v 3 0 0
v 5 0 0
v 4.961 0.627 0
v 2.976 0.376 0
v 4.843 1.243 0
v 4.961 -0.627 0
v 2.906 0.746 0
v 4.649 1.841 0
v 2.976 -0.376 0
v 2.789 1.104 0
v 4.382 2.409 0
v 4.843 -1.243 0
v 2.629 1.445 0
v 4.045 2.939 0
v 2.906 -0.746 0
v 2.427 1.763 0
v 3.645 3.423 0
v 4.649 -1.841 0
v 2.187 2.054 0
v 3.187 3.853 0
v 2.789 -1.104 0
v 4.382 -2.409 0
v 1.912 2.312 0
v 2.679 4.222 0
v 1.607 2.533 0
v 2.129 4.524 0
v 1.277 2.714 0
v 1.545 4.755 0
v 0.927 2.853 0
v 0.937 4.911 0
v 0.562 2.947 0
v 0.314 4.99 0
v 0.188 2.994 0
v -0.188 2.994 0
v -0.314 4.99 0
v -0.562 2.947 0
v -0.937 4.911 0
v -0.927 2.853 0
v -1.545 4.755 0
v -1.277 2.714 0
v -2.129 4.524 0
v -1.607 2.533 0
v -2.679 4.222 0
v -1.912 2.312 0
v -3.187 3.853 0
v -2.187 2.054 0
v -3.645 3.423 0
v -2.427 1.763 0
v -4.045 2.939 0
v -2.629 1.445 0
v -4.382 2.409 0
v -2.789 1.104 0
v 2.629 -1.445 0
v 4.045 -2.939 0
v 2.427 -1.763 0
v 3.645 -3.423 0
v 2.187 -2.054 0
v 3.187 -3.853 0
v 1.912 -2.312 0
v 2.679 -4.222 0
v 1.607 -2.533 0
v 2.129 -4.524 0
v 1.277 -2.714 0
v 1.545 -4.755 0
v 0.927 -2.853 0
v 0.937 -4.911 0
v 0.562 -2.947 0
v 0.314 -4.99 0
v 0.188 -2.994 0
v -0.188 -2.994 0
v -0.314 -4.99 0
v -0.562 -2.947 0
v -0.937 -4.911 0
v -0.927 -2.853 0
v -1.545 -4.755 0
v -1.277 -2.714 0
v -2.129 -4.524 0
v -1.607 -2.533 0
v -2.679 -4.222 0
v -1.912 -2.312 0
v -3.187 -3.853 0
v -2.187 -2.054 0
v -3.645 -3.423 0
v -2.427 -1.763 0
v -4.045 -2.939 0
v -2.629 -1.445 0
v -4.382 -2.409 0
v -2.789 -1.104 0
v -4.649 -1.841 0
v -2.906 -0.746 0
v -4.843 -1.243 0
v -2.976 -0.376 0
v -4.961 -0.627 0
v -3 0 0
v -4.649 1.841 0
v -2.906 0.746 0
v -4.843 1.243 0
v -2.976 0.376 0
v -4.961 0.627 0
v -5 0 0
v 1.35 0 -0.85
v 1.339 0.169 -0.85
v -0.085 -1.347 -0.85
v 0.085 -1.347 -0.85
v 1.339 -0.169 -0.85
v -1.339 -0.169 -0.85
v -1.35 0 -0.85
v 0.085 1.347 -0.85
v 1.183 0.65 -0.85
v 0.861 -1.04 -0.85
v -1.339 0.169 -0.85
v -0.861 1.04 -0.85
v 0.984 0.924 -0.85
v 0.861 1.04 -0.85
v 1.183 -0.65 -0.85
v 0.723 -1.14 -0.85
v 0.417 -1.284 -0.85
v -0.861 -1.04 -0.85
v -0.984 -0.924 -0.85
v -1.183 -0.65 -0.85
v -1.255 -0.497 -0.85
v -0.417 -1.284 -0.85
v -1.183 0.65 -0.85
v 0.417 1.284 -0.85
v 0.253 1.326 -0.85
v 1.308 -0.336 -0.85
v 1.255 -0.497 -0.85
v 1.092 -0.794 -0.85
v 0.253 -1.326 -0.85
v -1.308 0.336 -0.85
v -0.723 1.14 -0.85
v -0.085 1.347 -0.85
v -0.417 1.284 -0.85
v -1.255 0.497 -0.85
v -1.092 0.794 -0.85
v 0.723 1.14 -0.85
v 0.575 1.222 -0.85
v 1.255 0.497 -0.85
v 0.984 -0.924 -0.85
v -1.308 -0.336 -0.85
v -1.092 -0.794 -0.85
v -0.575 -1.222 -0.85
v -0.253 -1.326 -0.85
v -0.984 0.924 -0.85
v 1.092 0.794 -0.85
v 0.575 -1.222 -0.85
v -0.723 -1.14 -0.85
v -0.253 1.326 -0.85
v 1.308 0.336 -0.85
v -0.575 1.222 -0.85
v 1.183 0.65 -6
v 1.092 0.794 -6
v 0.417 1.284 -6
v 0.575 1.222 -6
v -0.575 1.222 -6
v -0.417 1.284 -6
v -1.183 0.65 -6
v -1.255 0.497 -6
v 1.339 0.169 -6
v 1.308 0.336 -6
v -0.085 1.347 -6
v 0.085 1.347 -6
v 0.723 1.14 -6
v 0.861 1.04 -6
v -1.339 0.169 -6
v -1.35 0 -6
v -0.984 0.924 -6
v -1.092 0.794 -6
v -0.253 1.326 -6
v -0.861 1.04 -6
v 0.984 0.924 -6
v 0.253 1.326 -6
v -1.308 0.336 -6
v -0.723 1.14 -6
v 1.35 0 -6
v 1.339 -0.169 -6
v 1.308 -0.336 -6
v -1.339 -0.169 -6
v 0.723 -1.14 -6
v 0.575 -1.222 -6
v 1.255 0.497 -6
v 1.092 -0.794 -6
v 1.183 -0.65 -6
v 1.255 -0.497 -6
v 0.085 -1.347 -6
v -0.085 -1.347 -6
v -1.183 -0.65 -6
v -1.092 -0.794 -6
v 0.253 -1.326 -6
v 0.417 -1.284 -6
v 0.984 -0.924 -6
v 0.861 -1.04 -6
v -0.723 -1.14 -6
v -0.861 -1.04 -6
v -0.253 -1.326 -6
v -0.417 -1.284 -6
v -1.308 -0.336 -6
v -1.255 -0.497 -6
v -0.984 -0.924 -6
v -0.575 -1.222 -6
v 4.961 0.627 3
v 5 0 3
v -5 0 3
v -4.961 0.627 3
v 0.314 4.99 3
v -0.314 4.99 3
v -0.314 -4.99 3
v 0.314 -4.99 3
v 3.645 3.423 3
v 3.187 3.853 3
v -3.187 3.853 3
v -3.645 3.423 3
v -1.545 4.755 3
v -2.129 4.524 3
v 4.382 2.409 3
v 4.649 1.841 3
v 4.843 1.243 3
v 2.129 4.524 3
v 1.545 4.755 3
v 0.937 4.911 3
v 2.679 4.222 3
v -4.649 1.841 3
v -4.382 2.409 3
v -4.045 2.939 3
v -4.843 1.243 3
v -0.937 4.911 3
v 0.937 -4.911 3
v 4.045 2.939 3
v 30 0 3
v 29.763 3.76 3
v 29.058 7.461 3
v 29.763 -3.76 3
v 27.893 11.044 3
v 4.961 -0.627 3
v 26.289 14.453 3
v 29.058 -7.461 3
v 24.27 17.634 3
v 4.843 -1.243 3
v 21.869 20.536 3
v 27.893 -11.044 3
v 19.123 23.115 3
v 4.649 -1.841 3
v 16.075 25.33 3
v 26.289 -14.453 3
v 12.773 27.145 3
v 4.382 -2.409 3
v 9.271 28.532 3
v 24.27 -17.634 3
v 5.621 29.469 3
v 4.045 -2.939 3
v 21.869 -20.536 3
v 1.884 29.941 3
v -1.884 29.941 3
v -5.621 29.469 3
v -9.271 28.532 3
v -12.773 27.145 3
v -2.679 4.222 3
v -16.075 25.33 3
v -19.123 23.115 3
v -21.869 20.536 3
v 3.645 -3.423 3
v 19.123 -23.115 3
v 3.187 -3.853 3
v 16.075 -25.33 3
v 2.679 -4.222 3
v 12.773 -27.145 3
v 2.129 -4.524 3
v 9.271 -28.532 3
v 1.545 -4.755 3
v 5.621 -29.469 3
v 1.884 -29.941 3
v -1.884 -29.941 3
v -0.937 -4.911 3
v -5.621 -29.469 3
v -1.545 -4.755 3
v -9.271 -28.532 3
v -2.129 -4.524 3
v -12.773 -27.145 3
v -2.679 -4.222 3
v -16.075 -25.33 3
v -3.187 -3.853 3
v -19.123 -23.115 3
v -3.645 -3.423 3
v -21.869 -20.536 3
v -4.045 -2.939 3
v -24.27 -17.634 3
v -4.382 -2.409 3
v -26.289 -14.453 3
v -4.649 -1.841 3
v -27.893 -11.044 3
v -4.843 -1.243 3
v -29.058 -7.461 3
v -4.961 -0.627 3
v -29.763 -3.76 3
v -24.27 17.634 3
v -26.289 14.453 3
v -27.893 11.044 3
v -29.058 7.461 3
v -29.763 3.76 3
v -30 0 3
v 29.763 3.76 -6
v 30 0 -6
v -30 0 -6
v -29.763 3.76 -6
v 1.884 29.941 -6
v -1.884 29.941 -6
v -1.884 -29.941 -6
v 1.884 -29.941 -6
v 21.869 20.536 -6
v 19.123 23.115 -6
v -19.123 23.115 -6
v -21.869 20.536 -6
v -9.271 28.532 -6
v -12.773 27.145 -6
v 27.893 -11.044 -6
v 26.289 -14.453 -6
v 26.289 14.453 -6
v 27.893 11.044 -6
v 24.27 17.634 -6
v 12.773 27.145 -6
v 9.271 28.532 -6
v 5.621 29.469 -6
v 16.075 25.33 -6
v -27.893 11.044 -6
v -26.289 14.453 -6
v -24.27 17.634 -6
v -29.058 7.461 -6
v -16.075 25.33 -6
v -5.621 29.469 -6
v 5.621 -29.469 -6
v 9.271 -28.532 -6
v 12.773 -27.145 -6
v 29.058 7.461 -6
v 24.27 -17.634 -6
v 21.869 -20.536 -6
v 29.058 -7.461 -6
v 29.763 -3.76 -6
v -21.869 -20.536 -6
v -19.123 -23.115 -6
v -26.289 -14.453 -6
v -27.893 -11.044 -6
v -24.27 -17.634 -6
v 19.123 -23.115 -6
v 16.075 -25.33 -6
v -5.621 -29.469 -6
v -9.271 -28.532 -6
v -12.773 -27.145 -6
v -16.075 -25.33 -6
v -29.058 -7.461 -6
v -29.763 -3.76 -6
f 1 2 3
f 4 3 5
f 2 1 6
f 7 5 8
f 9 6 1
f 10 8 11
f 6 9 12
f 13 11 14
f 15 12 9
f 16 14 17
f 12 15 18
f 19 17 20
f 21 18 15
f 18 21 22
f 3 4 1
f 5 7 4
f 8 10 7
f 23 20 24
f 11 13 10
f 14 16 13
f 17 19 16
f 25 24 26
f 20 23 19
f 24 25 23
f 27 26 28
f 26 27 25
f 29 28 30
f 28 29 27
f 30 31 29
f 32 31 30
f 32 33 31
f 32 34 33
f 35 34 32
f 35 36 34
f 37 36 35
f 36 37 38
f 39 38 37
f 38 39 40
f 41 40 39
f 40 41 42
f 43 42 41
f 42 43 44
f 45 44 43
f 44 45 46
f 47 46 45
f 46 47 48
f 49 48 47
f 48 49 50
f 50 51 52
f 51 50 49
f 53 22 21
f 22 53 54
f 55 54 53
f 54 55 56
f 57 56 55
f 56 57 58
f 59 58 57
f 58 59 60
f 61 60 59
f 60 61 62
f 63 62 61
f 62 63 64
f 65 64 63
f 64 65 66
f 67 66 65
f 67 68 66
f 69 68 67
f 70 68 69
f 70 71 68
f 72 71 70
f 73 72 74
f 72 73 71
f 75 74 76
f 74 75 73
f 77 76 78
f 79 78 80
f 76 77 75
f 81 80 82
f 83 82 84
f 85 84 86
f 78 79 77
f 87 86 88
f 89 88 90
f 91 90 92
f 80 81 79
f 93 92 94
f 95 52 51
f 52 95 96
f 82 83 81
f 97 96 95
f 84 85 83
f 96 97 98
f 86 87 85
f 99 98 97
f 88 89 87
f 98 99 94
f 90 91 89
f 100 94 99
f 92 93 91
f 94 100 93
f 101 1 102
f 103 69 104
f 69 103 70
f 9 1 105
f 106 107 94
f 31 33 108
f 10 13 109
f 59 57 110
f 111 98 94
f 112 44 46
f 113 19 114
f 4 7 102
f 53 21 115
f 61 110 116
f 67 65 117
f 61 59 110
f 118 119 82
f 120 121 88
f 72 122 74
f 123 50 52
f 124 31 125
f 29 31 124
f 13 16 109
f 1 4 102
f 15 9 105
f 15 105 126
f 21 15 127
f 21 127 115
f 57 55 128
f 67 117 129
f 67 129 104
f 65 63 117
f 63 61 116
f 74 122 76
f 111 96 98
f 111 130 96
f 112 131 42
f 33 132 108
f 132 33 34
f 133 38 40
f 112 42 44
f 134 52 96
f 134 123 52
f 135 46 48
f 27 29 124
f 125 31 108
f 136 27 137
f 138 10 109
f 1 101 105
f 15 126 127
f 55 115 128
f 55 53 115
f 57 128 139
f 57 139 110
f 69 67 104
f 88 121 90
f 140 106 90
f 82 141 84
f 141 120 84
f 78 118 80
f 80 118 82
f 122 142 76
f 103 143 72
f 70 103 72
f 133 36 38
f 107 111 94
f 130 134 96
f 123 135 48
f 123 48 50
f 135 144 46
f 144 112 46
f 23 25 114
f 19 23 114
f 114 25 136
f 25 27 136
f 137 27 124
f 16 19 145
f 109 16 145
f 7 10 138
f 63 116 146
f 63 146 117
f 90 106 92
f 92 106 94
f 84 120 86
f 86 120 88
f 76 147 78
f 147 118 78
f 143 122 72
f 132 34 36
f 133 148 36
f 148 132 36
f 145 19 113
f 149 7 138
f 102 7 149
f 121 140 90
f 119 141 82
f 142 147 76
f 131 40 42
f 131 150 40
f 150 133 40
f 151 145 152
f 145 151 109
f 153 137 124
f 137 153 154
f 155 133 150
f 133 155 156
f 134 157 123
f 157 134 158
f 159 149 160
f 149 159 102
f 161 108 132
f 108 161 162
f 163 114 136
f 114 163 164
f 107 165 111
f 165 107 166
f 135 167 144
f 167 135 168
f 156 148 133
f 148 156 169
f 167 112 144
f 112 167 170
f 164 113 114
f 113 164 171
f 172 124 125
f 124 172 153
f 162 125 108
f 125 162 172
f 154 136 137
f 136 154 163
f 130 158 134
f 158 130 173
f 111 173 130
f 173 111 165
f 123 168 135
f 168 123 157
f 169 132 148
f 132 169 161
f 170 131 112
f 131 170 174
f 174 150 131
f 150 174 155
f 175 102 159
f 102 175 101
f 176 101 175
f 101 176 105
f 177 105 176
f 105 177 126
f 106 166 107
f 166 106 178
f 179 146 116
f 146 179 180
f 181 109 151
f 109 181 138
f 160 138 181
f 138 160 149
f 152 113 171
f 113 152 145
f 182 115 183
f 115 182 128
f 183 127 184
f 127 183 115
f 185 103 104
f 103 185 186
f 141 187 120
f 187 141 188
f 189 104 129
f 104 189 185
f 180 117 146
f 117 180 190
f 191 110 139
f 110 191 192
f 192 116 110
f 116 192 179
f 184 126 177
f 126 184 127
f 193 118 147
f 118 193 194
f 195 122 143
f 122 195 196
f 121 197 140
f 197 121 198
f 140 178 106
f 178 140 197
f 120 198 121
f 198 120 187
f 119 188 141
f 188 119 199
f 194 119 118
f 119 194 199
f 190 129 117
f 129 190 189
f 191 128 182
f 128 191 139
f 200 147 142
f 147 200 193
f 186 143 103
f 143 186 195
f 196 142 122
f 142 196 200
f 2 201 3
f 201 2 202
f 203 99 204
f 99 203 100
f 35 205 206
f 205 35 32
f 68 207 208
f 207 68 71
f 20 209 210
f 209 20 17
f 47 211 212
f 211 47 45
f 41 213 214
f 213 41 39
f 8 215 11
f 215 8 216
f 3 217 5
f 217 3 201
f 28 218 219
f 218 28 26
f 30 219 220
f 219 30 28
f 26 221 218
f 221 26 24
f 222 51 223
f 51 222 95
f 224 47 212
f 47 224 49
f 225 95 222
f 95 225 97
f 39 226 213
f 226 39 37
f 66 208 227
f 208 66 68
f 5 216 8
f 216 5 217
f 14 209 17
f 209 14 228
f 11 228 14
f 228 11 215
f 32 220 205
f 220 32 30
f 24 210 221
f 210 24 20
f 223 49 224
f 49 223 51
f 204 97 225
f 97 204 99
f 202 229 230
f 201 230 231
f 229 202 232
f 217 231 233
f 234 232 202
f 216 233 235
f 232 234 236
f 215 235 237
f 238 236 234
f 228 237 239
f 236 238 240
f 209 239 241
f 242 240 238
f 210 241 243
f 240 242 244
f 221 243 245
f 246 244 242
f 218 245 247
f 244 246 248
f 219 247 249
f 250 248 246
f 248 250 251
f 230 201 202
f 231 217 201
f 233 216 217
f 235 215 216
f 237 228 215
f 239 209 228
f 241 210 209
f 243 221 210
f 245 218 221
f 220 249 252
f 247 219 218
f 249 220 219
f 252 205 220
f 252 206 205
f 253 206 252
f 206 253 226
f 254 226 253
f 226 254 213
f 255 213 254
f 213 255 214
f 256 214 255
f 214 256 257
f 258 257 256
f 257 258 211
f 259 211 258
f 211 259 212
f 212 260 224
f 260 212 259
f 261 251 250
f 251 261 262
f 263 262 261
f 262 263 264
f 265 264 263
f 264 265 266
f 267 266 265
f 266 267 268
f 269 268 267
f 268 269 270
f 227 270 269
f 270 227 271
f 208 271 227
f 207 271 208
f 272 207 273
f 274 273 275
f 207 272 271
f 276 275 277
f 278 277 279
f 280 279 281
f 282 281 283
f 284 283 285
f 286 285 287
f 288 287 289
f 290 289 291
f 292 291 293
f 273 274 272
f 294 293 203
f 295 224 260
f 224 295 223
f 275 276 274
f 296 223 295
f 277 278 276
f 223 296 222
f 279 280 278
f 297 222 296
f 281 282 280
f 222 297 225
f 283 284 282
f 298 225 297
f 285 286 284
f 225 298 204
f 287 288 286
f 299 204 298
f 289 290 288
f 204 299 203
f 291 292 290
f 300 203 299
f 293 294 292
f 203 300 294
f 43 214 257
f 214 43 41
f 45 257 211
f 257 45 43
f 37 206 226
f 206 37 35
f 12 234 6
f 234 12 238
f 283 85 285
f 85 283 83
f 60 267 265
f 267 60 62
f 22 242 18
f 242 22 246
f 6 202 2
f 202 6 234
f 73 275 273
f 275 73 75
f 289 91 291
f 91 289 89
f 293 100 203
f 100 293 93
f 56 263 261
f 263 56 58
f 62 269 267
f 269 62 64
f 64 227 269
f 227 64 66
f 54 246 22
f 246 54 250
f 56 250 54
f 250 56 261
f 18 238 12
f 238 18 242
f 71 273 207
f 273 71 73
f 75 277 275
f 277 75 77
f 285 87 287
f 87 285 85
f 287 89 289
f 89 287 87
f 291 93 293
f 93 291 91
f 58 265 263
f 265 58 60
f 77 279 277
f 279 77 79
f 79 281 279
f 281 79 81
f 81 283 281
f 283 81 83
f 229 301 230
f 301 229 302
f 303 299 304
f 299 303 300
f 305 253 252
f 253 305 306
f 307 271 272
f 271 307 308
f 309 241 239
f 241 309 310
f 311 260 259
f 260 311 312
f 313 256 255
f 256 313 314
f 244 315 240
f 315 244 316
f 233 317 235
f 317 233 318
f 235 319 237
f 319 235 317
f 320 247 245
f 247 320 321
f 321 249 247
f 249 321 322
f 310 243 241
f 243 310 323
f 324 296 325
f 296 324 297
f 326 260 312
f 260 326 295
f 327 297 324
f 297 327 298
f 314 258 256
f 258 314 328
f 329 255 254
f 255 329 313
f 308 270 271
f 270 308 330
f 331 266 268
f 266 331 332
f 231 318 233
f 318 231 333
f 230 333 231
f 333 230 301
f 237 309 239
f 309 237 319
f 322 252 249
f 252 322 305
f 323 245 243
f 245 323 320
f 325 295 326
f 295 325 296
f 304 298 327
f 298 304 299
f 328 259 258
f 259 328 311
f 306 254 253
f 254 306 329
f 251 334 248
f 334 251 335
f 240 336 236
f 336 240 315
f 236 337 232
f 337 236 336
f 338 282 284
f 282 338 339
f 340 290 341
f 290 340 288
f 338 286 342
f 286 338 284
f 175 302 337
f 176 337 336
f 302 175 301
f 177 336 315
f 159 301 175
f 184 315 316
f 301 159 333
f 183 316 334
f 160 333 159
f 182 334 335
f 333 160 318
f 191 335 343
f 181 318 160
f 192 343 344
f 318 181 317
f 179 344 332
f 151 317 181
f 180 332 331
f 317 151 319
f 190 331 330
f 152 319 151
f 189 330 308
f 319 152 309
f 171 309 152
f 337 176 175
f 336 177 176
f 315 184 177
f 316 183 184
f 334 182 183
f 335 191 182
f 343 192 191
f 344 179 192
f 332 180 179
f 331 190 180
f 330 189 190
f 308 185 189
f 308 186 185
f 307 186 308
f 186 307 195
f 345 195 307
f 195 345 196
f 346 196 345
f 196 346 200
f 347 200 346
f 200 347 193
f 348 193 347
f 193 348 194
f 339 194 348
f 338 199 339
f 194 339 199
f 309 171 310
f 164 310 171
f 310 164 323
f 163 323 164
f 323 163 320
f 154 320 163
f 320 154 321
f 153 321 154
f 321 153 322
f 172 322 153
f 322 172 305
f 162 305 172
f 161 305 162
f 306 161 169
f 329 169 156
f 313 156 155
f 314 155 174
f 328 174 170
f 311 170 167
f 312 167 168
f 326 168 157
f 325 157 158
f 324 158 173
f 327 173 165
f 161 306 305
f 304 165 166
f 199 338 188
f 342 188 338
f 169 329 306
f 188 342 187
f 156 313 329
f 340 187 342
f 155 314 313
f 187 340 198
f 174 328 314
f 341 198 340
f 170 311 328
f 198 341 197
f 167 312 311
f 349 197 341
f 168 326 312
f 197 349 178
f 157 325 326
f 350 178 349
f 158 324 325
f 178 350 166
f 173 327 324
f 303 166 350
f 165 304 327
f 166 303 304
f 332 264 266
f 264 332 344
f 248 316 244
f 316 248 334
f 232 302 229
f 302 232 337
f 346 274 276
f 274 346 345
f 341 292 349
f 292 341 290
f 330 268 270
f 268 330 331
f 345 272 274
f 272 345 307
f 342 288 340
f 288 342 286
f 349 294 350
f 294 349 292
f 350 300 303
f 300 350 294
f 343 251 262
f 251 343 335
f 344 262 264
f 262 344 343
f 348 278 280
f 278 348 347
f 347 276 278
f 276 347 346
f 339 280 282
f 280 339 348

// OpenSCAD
$fn = 50;


difference() {
	union() {
		translate(v = [0, 0, -6.0000000000]) {
			cylinder(h = 9, r = 30.0000000000);
		}
	}
	union() {
		translate(v = [0, 0, 0]) {
			rotate(a = [0, 0, 0]) {
				difference() {
					union() {
						translate(v = [0, 0, -9.0000000000]) {
							cylinder(h = 9, r = 1.0000000000);
						}
						translate(v = [0, 0, -0.8500000000]) {
							cylinder(h = 0.8500000000, r1 = 1.3500000000, r2 = 3.0000000000);
						}
						translate(v = [0, 0, -9.0000000000]) {
							cylinder(h = 9, r = 1.3500000000);
						}
						translate(v = [0, 0, -9.0000000000]) {
							cylinder(h = 9, r = 1.0000000000);
						}
					}
					union();
				}
			}
		}
		#cylinder(h = 3, r = 5.0000000000);
	}
}
